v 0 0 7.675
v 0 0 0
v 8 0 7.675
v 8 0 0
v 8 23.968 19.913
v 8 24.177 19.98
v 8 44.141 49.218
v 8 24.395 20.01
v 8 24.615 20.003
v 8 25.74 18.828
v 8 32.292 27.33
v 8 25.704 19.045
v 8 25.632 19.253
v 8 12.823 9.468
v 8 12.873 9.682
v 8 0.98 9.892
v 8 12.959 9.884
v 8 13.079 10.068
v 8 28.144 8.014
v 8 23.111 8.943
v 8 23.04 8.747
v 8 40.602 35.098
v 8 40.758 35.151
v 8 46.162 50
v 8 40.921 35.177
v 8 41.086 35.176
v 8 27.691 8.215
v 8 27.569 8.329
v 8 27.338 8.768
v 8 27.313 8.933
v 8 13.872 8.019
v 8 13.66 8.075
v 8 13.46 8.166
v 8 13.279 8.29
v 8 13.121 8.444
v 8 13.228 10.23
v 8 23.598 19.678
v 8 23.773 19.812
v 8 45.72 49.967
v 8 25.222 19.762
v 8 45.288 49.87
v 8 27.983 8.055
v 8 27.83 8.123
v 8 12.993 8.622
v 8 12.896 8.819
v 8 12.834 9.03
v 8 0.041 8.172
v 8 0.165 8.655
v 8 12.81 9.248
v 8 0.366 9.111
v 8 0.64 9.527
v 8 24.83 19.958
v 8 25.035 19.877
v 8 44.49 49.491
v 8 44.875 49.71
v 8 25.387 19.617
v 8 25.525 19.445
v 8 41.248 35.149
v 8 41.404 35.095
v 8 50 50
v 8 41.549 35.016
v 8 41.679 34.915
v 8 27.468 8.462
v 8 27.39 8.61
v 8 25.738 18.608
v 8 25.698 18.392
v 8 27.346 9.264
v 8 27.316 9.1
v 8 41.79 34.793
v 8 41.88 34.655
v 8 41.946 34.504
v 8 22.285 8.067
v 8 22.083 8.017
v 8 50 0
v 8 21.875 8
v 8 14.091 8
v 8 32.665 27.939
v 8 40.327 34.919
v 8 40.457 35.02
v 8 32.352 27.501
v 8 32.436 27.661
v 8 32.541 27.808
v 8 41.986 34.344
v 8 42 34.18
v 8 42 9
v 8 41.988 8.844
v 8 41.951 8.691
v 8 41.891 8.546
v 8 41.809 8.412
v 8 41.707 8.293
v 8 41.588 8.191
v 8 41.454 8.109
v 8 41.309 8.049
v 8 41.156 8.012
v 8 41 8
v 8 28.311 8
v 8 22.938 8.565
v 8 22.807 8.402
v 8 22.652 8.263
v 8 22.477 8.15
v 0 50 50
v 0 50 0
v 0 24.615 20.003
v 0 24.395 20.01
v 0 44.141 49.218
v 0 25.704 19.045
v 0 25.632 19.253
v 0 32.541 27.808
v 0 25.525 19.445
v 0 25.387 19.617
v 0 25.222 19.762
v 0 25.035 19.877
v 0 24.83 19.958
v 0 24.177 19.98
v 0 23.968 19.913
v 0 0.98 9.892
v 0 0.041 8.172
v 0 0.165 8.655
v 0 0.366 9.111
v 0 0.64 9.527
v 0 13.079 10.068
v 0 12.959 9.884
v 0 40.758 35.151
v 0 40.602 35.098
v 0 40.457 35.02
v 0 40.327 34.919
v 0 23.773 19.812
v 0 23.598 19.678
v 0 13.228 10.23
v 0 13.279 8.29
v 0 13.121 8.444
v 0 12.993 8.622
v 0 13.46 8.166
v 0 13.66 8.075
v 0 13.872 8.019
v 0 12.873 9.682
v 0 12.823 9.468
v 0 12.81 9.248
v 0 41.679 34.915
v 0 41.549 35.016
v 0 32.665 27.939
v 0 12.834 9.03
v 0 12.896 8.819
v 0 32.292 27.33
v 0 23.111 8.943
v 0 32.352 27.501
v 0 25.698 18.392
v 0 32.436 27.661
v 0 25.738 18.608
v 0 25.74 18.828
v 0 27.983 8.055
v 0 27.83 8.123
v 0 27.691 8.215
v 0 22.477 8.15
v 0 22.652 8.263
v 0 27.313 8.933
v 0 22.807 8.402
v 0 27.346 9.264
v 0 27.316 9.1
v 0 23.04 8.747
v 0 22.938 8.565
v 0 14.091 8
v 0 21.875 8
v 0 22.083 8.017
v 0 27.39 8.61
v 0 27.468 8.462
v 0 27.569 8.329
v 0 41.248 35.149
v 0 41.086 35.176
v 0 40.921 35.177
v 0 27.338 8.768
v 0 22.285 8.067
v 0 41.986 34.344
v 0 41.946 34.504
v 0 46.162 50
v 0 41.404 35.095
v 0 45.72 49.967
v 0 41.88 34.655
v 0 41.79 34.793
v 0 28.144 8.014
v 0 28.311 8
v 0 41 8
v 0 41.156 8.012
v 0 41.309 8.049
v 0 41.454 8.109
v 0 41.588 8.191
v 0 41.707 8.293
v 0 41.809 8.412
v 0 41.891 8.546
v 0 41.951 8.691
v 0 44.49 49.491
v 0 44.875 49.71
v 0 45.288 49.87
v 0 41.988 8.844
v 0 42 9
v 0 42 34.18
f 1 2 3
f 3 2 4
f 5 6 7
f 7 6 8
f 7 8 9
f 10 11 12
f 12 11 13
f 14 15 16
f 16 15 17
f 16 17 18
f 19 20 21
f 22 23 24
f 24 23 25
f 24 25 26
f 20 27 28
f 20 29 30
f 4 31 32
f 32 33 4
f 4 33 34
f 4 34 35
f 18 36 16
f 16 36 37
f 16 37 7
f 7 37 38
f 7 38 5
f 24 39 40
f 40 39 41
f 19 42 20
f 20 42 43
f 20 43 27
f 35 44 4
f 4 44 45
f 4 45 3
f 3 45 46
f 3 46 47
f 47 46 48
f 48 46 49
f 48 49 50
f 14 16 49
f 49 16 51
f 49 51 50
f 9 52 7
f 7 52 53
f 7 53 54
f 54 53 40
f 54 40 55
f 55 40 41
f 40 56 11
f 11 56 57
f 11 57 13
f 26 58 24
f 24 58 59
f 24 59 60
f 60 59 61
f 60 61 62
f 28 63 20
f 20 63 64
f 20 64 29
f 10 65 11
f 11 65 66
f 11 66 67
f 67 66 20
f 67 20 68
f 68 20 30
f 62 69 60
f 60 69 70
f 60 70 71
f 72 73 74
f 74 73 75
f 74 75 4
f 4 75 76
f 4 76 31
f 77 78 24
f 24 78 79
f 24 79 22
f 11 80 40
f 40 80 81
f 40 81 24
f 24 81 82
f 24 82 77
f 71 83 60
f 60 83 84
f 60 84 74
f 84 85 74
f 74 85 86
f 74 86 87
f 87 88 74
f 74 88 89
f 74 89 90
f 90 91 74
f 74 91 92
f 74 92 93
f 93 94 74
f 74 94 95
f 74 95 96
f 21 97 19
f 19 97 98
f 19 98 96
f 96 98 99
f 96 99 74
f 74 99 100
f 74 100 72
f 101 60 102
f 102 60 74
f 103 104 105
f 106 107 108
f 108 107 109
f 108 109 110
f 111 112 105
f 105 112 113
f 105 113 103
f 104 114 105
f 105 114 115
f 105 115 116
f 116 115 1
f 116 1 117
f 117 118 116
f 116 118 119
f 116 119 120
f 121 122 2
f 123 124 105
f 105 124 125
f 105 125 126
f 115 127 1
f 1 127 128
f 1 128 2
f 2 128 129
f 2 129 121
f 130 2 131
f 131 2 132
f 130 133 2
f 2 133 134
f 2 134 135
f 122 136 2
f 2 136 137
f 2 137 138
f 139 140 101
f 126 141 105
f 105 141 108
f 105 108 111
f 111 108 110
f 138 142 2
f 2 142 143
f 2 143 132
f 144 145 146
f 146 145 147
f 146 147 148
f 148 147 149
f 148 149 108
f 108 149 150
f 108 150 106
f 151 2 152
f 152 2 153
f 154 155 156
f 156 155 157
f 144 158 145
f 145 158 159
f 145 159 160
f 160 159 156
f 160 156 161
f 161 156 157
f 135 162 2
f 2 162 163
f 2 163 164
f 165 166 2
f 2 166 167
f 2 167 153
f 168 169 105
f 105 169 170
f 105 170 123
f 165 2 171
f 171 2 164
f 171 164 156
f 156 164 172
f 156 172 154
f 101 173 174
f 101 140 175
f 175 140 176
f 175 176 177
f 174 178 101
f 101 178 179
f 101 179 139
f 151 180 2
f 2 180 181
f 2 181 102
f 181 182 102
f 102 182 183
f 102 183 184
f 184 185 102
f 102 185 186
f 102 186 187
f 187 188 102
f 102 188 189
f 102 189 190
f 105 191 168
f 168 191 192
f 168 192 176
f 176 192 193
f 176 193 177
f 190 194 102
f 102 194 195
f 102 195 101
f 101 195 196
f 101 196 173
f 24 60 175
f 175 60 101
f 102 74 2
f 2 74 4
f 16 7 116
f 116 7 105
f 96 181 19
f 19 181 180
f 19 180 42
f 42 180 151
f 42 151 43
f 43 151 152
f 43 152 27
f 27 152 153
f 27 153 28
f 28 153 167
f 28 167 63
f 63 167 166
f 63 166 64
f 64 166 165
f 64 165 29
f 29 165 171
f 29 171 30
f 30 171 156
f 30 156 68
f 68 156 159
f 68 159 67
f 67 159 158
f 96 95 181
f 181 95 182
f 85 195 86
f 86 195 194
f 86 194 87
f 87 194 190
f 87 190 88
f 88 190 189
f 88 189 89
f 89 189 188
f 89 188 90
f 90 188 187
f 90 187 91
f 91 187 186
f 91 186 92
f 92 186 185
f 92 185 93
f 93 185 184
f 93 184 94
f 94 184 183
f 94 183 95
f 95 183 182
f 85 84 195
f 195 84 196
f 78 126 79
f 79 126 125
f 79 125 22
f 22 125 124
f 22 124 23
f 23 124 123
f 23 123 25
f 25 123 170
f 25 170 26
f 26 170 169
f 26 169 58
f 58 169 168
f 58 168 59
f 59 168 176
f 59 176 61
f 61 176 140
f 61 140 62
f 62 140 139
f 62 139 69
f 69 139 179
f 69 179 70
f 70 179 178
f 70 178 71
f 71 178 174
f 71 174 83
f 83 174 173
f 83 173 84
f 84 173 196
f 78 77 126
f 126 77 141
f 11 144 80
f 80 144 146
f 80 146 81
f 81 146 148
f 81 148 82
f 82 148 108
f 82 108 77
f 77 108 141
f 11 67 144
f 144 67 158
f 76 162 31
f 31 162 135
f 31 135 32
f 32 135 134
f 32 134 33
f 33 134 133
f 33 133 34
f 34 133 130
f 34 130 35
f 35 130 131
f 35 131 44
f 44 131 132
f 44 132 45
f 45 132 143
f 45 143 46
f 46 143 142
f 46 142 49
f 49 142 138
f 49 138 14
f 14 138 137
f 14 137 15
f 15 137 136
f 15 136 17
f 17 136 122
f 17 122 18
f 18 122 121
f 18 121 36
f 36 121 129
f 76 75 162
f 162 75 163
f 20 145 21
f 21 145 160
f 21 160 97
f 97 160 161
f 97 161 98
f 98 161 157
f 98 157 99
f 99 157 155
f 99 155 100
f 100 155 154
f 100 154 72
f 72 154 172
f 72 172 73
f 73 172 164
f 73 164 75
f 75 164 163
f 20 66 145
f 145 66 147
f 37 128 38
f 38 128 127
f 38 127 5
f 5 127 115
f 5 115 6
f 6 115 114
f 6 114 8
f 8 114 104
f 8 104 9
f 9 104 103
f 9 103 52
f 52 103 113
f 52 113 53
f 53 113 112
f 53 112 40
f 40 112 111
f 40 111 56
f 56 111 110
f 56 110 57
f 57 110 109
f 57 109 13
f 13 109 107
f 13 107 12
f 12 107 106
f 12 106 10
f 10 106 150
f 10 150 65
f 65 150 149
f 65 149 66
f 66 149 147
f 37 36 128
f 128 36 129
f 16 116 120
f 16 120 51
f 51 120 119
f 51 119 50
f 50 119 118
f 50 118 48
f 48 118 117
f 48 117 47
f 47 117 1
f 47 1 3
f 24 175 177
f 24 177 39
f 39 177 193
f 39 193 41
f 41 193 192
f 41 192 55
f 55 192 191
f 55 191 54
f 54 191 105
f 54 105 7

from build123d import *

# Parameters (mm, degrees)
SKETCH1_W           = 8
SKETCH1_H           = 50
BOSS_EXTRUDE1_DEPTH = 50
CUT_EXTRUDE1_DEPTH  = 72.161787499
FILLET1_R           = 3


with BuildPart() as part:
    # Sketch1 → Boss-Extrude1 (new body)
    with BuildSketch(Plane.XY):
        with Locations((4, 25)):
            Rectangle(SKETCH1_W, SKETCH1_H)
    extrude(amount=BOSS_EXTRUDE1_DEPTH)

    # Sketch2 → Cut-Extrude1 (cut, through all)
    with BuildSketch(Plane.ZY):
        Polygon((9, 0), (50, 45), (50, 0), align=None)
        with BuildLine():
            Line((34.919366889, 40.326510004), (27.939173676, 32.665322332))
            ThreePointArc((27.939173676, 32.665322332), (27.661132031, 32.43550968), (27.330075217, 32.292253277))
            Line((27.330075217, 32.292253277), (9.264065377, 27.346080088))
            ThreePointArc((9.264065377, 27.346080088), (8.393396908, 27.515580036), (8, 28.310584871))
            Line((8, 28.310584871), (8, 41))
            ThreePointArc((8, 41), (8.292893219, 41.707106781), (9, 42))
            Line((9, 42), (34.180170551, 42))
            ThreePointArc((34.180170551, 42), (35.094908218, 41.404048267), (34.919366889, 40.326510004))
        make_face()
        with BuildLine():
            Line((19.677865993, 23.598033411), (10.229578577, 13.227961857))
            ThreePointArc((10.229578577, 13.227961857), (8.819028368, 12.895892811), (8, 14.091348489))
            Line((8, 14.091348489), (8, 21.874636004))
            ThreePointArc((8, 21.874636004), (8.262795417, 22.65227636), (8.943438089, 23.111091691))
            Line((8.943438089, 23.111091691), (18.391725505, 25.697875729))
            ThreePointArc((18.391725505, 25.697875729), (19.823445803, 25.130997871), (19.677865993, 23.598033411))
        make_face()
    extrude(amount=-CUT_EXTRUDE1_DEPTH, mode=Mode.SUBTRACT)

    # Fillet1
    fillet1_edges = [part.edges().sort_by_distance(p)[0] for p in [
        (4, 0, 9),
        (4, 45, 50),
    ]]
    fillet(fillet1_edges, radius=FILLET1_R)


solid = part.part
